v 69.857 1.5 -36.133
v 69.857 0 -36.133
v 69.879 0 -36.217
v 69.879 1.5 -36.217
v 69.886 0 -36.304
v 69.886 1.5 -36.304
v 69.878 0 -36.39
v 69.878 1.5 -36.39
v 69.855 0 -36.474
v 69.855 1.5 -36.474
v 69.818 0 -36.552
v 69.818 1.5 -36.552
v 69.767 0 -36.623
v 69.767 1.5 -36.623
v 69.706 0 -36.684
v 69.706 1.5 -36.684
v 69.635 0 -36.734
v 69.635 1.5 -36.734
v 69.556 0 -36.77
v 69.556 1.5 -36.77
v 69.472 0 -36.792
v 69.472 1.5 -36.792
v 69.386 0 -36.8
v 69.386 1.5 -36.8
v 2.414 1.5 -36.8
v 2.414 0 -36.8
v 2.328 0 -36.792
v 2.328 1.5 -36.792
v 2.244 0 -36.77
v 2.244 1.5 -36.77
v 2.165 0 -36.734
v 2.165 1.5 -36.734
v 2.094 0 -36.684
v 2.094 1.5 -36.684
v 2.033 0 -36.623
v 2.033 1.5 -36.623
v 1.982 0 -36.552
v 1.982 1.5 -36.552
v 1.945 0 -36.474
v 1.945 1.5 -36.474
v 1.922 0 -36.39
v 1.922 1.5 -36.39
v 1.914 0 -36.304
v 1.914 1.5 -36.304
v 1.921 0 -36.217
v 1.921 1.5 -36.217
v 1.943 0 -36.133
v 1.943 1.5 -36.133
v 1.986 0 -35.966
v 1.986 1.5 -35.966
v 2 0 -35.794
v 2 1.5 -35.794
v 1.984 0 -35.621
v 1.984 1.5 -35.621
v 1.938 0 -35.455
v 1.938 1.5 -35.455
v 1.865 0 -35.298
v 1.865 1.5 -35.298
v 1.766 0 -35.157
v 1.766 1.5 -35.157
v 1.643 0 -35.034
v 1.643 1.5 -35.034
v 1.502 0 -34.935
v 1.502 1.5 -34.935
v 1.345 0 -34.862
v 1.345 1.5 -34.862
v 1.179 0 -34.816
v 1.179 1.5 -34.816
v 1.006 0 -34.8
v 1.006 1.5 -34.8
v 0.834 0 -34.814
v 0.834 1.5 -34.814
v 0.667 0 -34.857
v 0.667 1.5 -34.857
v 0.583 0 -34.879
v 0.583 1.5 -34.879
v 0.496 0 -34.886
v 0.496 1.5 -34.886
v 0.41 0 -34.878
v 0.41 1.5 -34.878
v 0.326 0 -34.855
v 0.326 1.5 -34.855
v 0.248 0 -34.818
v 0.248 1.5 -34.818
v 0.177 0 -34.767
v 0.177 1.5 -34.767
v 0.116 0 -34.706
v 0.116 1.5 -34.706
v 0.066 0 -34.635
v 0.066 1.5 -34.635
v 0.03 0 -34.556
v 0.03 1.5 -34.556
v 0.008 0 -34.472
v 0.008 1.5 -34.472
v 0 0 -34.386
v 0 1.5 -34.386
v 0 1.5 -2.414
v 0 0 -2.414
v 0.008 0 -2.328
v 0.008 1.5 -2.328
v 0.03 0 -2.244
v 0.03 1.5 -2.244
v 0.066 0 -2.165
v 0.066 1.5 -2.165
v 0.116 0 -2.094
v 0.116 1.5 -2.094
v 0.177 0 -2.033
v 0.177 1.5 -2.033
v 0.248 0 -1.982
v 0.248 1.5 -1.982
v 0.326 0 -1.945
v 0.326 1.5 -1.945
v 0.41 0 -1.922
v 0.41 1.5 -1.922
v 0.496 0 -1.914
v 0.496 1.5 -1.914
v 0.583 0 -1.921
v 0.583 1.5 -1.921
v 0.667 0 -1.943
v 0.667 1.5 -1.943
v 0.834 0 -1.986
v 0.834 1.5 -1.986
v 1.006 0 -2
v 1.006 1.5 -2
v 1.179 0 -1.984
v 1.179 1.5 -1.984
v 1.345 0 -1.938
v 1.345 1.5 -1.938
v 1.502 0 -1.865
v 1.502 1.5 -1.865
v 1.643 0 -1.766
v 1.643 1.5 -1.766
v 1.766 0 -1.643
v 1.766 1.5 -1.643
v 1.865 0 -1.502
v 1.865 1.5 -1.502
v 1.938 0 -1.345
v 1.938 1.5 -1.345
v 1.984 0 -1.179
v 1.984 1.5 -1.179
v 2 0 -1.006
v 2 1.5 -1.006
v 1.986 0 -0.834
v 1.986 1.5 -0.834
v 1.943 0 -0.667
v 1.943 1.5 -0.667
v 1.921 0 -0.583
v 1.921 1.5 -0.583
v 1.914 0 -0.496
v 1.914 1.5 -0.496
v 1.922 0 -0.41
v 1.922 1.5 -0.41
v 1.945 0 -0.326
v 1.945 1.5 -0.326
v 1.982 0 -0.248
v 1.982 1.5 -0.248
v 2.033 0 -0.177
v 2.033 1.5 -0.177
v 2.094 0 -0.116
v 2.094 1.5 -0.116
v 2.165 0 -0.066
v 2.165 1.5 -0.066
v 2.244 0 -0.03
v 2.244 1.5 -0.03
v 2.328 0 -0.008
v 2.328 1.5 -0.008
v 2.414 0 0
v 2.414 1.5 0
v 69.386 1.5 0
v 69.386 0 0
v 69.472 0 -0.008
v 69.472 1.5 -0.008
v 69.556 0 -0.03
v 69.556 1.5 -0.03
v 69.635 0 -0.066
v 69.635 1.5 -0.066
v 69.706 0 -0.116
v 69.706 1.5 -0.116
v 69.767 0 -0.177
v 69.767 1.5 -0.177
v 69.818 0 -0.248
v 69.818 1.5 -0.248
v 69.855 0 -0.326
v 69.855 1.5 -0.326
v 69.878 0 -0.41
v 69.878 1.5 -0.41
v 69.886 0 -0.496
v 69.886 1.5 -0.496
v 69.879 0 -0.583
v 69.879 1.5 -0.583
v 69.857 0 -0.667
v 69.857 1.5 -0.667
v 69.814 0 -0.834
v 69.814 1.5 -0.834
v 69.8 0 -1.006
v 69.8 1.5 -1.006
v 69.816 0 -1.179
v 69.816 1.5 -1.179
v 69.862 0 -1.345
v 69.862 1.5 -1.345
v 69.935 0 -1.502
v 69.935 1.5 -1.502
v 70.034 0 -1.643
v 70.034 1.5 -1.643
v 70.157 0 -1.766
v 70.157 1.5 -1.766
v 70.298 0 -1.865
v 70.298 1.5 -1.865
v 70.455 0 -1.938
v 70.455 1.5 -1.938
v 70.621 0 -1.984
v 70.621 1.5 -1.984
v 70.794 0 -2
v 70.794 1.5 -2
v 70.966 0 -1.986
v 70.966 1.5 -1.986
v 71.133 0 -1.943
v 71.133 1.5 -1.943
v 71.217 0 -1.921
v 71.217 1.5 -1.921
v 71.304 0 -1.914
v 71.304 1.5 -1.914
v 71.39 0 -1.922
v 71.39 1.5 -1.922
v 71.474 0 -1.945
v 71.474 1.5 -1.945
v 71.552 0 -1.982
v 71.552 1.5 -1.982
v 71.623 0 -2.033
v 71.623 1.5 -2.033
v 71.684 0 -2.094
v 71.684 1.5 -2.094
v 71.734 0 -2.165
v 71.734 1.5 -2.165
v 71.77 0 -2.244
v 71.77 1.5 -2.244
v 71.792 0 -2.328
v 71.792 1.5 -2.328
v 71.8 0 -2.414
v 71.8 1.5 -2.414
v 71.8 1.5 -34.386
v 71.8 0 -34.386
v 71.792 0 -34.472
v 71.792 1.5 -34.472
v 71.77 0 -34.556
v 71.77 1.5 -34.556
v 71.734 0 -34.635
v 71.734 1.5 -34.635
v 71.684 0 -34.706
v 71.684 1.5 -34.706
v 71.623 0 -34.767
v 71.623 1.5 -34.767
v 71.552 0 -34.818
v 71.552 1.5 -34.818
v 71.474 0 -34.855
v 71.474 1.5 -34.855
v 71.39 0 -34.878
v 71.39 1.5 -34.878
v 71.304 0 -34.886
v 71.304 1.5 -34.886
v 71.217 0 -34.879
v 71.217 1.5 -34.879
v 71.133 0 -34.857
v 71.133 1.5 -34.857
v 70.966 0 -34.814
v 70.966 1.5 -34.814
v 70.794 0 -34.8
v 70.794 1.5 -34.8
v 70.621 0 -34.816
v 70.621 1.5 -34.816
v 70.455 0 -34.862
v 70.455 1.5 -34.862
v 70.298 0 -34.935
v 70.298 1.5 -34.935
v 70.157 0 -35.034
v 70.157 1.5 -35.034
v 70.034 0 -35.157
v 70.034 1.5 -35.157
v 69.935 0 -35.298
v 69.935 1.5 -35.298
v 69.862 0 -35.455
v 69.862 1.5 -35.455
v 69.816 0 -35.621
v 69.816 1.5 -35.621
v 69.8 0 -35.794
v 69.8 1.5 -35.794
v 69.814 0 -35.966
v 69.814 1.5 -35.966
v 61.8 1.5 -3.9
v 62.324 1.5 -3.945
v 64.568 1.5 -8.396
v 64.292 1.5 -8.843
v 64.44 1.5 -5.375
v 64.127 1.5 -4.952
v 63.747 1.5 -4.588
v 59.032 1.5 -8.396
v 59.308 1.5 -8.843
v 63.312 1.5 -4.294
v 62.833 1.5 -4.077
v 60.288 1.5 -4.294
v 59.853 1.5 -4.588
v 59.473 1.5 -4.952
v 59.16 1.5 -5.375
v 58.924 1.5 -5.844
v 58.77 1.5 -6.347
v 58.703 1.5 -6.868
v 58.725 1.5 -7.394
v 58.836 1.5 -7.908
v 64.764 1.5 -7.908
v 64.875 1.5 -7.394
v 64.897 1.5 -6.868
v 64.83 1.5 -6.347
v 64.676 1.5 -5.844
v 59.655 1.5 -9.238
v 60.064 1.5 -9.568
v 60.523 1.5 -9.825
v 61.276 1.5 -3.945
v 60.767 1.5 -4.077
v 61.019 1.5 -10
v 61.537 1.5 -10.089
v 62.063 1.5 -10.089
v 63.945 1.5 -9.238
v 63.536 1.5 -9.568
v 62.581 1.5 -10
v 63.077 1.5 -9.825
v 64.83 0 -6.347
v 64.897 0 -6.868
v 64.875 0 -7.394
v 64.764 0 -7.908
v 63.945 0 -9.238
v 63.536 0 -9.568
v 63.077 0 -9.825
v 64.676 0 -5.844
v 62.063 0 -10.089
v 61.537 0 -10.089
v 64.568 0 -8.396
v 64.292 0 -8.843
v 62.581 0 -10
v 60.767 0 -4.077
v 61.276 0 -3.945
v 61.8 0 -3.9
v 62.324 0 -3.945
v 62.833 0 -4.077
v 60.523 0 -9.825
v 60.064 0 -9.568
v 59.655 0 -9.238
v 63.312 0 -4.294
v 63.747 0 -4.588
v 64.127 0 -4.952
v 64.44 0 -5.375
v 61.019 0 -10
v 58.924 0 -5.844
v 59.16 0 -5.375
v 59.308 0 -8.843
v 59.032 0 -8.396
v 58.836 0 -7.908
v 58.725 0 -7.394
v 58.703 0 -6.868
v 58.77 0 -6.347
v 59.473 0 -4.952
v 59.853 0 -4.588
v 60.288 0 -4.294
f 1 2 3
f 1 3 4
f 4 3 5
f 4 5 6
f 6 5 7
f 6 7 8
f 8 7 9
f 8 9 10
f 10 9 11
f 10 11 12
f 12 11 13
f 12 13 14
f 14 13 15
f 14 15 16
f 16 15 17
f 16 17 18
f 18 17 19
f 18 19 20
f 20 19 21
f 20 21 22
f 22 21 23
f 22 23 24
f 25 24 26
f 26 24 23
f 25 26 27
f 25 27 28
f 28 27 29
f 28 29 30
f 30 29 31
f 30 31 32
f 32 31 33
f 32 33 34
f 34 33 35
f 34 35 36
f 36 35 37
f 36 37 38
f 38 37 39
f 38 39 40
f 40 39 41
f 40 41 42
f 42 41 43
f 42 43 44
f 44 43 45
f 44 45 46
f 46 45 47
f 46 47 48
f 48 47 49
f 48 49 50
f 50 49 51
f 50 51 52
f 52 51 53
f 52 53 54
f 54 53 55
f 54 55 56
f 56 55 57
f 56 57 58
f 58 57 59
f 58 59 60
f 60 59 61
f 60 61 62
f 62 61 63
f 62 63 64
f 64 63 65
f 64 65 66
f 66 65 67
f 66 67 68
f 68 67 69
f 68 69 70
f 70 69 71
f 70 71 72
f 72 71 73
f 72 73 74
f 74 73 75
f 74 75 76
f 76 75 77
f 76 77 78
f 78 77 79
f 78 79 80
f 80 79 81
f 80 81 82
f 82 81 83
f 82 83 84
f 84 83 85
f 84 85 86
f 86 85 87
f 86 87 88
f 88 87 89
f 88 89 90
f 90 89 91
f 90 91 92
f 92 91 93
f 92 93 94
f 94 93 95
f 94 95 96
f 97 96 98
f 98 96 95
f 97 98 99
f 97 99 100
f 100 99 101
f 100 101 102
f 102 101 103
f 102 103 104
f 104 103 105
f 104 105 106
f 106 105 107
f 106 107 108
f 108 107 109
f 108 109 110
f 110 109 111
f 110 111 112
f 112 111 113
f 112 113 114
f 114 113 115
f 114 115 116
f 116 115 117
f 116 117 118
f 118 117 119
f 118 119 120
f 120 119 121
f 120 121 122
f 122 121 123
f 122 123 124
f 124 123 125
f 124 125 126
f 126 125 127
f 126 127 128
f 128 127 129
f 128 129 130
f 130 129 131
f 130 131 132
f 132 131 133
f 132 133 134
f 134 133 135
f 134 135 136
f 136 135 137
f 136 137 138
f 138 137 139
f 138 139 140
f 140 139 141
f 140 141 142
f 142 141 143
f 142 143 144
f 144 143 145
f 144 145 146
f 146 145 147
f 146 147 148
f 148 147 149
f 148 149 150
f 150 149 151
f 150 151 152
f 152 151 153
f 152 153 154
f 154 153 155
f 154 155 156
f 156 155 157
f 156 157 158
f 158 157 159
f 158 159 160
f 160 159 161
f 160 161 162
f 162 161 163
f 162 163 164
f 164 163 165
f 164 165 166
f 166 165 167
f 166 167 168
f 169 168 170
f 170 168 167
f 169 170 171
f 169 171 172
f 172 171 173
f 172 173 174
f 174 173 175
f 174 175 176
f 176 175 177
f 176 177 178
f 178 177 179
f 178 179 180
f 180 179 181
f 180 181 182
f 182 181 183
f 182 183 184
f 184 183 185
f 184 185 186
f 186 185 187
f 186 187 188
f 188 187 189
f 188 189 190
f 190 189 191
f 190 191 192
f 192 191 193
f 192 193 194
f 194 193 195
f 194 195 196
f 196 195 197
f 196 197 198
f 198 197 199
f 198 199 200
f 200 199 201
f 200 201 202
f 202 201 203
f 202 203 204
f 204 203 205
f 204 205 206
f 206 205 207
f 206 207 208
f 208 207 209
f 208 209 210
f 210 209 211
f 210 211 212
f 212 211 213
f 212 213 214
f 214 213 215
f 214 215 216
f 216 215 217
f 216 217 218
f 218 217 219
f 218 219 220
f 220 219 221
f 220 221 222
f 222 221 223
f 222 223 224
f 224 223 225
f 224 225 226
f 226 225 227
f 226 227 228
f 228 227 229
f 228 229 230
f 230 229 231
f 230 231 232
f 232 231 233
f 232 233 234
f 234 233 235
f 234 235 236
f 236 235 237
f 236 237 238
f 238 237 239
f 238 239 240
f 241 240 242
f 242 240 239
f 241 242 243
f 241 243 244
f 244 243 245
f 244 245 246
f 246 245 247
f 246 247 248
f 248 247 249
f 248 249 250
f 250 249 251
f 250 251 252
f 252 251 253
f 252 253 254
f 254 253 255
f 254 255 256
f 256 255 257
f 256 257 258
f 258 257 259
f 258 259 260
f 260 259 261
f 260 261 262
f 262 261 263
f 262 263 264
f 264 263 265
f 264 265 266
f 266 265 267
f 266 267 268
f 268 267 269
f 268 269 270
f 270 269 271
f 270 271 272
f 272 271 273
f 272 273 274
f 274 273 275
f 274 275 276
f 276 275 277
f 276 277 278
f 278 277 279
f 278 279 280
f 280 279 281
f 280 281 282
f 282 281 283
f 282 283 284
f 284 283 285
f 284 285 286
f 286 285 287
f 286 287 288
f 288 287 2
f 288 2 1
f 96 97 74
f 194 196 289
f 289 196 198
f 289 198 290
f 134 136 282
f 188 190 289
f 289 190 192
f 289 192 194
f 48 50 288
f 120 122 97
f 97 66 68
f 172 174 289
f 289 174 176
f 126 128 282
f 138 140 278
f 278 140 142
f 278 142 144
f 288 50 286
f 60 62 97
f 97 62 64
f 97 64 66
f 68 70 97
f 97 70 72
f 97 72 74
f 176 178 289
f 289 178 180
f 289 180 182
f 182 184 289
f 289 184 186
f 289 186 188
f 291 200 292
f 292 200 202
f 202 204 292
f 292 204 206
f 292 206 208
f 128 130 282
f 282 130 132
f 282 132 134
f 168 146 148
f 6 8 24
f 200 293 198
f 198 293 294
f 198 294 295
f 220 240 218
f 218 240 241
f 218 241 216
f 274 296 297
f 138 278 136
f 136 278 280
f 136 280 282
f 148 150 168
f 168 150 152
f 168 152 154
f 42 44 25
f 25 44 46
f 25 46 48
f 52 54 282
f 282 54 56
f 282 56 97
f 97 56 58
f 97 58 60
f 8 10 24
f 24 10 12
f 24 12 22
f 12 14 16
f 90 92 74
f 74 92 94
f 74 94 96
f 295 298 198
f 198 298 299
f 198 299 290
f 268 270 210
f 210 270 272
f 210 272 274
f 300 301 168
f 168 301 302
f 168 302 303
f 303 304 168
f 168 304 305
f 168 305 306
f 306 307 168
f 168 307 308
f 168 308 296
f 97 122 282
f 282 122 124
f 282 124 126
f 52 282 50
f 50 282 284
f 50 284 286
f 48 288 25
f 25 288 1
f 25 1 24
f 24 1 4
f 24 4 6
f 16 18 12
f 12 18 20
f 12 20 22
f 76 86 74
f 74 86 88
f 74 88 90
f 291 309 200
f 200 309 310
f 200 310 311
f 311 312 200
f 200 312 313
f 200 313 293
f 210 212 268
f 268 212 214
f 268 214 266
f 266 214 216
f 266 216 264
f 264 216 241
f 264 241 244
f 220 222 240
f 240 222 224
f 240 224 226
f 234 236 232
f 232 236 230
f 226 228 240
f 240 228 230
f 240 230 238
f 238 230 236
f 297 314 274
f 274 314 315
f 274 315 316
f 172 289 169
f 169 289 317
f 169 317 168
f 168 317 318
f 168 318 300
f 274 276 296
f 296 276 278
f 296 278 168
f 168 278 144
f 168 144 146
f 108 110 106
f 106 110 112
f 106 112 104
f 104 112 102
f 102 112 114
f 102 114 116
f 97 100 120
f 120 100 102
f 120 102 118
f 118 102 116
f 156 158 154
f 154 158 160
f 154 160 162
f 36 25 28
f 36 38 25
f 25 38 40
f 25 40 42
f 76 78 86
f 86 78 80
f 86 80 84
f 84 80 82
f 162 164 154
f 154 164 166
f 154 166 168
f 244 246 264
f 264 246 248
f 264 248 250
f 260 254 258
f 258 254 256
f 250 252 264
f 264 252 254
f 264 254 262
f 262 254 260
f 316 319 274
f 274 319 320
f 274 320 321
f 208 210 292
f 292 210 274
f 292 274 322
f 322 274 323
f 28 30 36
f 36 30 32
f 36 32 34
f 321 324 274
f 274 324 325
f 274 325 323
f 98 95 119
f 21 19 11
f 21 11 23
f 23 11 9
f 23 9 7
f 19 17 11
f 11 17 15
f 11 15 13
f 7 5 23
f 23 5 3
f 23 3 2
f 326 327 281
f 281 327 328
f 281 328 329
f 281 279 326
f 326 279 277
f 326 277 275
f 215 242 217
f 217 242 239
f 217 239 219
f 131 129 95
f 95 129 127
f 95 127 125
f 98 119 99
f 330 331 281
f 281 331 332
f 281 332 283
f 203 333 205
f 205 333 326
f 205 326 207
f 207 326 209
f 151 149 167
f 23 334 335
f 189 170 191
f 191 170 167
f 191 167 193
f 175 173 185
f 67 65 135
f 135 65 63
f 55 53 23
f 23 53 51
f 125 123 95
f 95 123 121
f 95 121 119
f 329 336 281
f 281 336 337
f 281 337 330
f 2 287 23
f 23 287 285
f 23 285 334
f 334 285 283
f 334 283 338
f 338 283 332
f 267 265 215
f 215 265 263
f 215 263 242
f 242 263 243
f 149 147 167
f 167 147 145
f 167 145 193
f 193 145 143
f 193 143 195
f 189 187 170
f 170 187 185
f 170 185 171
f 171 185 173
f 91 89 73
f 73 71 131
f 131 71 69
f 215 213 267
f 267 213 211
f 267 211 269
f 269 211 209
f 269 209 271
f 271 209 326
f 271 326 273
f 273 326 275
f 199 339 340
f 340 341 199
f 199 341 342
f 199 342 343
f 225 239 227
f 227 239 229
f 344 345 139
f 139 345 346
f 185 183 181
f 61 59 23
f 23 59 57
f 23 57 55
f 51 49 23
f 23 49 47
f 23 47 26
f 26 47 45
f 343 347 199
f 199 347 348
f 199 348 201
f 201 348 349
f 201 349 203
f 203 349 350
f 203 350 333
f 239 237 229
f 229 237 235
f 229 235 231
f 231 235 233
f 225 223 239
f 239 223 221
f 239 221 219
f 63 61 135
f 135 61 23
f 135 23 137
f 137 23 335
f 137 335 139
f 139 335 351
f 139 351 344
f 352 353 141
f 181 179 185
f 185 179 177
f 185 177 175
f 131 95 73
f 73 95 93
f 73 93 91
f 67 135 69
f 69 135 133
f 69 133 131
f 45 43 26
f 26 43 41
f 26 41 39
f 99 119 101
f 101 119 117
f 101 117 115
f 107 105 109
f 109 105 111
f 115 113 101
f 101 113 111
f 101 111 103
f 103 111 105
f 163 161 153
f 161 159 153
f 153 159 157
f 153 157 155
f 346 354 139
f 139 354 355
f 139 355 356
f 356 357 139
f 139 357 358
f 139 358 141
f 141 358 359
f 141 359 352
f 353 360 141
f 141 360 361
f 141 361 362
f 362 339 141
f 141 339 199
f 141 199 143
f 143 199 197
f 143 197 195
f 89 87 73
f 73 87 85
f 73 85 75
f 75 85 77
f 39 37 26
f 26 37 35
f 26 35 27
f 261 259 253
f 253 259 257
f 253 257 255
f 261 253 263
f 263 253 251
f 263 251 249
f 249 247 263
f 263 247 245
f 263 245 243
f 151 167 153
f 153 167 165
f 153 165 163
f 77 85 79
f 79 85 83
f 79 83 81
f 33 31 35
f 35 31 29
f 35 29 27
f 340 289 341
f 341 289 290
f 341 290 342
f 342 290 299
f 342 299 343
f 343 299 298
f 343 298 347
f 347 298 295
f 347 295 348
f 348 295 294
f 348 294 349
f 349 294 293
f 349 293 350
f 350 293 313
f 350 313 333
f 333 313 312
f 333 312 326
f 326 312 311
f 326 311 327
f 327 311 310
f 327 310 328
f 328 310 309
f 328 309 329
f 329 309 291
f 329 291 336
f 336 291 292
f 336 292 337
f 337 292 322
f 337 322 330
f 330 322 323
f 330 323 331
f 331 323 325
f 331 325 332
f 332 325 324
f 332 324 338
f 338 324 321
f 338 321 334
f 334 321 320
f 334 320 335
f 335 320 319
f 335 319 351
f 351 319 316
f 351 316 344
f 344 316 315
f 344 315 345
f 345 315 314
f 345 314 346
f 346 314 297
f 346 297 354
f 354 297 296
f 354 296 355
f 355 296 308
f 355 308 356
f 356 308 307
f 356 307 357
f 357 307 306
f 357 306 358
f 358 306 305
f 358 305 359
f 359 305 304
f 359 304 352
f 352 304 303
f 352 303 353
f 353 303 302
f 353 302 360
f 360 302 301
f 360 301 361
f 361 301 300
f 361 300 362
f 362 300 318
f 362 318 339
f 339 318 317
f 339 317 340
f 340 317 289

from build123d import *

# Parameters (mm, degrees)
BOSS_EXTRUDE1_DEPTH = 1.5
SKETCH2_R           = 3.1
CUT_EXTRUDE1_DEPTH  = 1.5


with BuildPart() as part:
    # Sketch1 → Boss-Extrude1 (new body)
    with BuildSketch(Plane(origin=(0, 0, 0), x_dir=(1, 0, 0), z_dir=(0, 1, 0))):
        with BuildLine():
            Line((2.414213562, 0), (69.385786438, 0))
            ThreePointArc((69.385786438, 0), (69.794034728, 0.211324865), (69.857190958, 0.666666667))
            ThreePointArc((69.857190958, 0.666666667), (70.092893219, 1.707106781), (71.133333333, 1.942809042))
            ThreePointArc((71.133333333, 1.942809042), (71.588675135, 2.005965272), (71.8, 2.414213562))
            Line((71.8, 2.414213562), (71.8, 34.385786438))
            ThreePointArc((71.8, 34.385786438), (71.588675135, 34.794034728), (71.133333333, 34.857190958))
            ThreePointArc((71.133333333, 34.857190958), (70.092893219, 35.092893219), (69.857190958, 36.133333333))
            ThreePointArc((69.857190958, 36.133333333), (69.794034728, 36.588675135), (69.385786438, 36.8))
            Line((69.385786438, 36.8), (2.414213562, 36.8))
            ThreePointArc((2.414213562, 36.8), (2.005965272, 36.588675135), (1.942809042, 36.133333333))
            ThreePointArc((1.942809042, 36.133333333), (1.707106781, 35.092893219), (0.666666667, 34.857190958))
            ThreePointArc((0.666666667, 34.857190958), (0.211324865, 34.794034728), (0, 34.385786438))
            Line((0, 34.385786438), (0, 2.414213562))
            ThreePointArc((0, 2.414213562), (0.211324865, 2.005965272), (0.666666667, 1.942809042))
            ThreePointArc((0.666666667, 1.942809042), (1.707106781, 1.707106781), (1.942809042, 0.666666667))
            ThreePointArc((1.942809042, 0.666666667), (2.005965272, 0.211324865), (2.414213562, 0))
        make_face()
    extrude(amount=BOSS_EXTRUDE1_DEPTH)

    # Sketch2 → Cut-Extrude1 (cut)
    with BuildSketch(Plane(origin=(0, 1.5, 0), x_dir=(1, 0, 0), z_dir=(0, 1, 0))):
        with Locations(Location((61.8, 7, 0), (0, 0, 270))):
            Circle(SKETCH2_R)
    extrude(amount=-CUT_EXTRUDE1_DEPTH, mode=Mode.SUBTRACT)


solid = part.part
